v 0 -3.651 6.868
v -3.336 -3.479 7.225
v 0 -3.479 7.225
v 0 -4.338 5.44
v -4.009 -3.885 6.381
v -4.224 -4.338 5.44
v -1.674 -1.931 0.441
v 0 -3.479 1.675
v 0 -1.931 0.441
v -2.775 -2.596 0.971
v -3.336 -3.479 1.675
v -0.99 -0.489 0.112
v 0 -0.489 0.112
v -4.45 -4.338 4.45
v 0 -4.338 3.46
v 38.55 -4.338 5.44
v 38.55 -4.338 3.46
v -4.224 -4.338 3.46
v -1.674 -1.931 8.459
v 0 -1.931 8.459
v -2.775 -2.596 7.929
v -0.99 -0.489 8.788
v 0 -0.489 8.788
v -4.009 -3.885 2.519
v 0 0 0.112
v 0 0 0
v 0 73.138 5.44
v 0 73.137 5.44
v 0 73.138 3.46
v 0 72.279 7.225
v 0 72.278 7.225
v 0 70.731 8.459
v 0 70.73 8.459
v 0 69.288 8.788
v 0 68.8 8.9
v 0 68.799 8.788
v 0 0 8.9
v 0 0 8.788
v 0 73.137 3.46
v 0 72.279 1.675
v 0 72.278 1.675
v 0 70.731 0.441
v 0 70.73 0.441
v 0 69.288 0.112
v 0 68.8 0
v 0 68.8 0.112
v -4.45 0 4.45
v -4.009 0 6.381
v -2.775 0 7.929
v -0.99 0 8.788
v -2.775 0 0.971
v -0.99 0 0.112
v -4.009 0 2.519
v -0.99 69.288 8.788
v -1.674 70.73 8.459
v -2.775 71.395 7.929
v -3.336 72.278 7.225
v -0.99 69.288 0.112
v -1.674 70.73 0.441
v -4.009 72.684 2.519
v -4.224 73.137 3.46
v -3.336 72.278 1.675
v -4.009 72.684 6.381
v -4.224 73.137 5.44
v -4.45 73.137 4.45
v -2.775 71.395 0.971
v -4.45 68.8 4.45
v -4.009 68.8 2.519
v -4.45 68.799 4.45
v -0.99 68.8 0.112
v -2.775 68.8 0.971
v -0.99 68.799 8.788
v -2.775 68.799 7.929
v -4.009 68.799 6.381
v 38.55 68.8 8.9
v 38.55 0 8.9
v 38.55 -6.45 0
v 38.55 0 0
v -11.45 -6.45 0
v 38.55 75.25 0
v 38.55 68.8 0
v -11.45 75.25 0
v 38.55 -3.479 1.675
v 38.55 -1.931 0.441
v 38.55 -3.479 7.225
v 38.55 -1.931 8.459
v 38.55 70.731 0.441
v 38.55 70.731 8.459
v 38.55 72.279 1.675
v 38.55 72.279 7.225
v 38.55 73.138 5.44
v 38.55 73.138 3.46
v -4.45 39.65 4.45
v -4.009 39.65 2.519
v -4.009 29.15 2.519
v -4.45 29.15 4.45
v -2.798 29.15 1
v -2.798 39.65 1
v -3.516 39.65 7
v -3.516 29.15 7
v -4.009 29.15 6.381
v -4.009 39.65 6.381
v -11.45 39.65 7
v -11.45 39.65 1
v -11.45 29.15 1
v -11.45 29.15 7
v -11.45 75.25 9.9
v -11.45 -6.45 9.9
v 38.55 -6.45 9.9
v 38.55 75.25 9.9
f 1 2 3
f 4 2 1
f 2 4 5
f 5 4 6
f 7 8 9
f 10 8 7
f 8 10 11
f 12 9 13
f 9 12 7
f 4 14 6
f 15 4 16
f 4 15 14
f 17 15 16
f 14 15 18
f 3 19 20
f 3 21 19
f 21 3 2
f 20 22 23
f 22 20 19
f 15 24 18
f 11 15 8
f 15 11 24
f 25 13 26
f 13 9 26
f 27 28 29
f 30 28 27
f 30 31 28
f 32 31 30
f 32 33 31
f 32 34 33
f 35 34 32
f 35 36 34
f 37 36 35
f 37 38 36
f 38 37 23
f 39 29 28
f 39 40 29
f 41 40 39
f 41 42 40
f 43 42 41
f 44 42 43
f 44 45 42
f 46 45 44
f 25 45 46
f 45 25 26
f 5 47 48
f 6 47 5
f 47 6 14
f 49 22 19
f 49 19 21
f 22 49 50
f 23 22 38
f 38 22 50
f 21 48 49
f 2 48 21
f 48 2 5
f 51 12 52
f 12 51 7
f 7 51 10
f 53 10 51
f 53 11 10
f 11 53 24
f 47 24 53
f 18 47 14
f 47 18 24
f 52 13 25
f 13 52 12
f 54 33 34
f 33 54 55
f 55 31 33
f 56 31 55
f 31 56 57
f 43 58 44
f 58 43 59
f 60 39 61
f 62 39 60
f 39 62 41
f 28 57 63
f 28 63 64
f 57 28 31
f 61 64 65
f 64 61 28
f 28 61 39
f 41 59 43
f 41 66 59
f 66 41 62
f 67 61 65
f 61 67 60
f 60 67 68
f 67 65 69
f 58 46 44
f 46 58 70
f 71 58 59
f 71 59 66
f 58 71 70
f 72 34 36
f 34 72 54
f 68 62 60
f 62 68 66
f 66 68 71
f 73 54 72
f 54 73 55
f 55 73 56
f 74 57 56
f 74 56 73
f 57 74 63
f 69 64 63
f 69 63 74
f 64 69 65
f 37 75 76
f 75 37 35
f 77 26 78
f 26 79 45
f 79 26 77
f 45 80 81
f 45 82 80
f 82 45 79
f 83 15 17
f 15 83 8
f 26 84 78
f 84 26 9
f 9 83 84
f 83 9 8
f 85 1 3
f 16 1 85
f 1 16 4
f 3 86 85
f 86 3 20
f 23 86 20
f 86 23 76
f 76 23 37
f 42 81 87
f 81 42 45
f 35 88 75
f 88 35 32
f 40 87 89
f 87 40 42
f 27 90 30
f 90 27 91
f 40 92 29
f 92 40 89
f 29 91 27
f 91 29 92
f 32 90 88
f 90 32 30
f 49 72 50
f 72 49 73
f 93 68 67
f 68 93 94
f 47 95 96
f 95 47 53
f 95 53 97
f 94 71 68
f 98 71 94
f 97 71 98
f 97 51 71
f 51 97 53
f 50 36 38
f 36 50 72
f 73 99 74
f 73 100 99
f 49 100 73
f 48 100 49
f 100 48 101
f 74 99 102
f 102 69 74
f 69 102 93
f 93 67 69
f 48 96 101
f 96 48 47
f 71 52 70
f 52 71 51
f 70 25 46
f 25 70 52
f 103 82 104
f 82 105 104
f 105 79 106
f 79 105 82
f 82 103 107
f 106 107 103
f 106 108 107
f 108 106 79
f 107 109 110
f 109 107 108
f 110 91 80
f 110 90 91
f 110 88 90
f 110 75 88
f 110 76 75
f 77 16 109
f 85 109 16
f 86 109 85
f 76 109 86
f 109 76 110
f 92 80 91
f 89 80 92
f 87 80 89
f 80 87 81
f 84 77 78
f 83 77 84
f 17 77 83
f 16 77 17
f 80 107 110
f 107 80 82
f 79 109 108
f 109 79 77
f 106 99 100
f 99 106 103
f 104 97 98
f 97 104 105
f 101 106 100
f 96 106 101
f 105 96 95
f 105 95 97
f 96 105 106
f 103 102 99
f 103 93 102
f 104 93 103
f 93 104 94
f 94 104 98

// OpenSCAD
module phone(l,w,h){
    r=h/2;
union(){
    cube([l-h,w-h,h]);
    translate([0,0,r])rotate([0,90,0])cylinder(l-h,r,r);
    translate([0,w-h,r])rotate([0,90,0])cylinder(l-h,r,r);
    translate([0,w-h,r])rotate([90,0,0])cylinder(w-h,r,r);
    translate([l-h,w-h,r])rotate([90,0,0])cylinder(w-h,r,r);
    translate([0,0,r])intersection(){
        rotate([0,-90,0])cylinder(r,r,r);
        rotate([90,0,0])cylinder(r,r,r);
    }
    translate([0,w-h-.001,r])intersection(){
        rotate([0,-90,0])cylinder(r,r,r);
        rotate([-90,0,0])cylinder(r,r,r);
    }
    translate([l-h,w-h,r])intersection(){
        rotate([0,90,0])cylinder(r,r,r);
        rotate([-90,0,0])cylinder(r,r,r);
    }
    translate([l-h,0,r])intersection(){
        rotate([0,90,0])cylinder(r,r,r);
        rotate([90,0,0])cylinder(r,r,r);
    }
}
}


pad=1;
l=158+pad;
w=76.7+pad;
h=7.9+pad;
overlap=2;

usbw=10.5;
usbh=6;
usbhoffset=4;


difference(){
    translate([-h/2-overlap-5,-overlap-(h/2),0])cube([50,w+overlap+overlap,h+overlap/2]);
    phone(l,w,h);
    translate([-usbw-3,w/2-usbw/2-h/2,usbhoffset-usbh/2])cube([17,usbw,usbh]);

}
